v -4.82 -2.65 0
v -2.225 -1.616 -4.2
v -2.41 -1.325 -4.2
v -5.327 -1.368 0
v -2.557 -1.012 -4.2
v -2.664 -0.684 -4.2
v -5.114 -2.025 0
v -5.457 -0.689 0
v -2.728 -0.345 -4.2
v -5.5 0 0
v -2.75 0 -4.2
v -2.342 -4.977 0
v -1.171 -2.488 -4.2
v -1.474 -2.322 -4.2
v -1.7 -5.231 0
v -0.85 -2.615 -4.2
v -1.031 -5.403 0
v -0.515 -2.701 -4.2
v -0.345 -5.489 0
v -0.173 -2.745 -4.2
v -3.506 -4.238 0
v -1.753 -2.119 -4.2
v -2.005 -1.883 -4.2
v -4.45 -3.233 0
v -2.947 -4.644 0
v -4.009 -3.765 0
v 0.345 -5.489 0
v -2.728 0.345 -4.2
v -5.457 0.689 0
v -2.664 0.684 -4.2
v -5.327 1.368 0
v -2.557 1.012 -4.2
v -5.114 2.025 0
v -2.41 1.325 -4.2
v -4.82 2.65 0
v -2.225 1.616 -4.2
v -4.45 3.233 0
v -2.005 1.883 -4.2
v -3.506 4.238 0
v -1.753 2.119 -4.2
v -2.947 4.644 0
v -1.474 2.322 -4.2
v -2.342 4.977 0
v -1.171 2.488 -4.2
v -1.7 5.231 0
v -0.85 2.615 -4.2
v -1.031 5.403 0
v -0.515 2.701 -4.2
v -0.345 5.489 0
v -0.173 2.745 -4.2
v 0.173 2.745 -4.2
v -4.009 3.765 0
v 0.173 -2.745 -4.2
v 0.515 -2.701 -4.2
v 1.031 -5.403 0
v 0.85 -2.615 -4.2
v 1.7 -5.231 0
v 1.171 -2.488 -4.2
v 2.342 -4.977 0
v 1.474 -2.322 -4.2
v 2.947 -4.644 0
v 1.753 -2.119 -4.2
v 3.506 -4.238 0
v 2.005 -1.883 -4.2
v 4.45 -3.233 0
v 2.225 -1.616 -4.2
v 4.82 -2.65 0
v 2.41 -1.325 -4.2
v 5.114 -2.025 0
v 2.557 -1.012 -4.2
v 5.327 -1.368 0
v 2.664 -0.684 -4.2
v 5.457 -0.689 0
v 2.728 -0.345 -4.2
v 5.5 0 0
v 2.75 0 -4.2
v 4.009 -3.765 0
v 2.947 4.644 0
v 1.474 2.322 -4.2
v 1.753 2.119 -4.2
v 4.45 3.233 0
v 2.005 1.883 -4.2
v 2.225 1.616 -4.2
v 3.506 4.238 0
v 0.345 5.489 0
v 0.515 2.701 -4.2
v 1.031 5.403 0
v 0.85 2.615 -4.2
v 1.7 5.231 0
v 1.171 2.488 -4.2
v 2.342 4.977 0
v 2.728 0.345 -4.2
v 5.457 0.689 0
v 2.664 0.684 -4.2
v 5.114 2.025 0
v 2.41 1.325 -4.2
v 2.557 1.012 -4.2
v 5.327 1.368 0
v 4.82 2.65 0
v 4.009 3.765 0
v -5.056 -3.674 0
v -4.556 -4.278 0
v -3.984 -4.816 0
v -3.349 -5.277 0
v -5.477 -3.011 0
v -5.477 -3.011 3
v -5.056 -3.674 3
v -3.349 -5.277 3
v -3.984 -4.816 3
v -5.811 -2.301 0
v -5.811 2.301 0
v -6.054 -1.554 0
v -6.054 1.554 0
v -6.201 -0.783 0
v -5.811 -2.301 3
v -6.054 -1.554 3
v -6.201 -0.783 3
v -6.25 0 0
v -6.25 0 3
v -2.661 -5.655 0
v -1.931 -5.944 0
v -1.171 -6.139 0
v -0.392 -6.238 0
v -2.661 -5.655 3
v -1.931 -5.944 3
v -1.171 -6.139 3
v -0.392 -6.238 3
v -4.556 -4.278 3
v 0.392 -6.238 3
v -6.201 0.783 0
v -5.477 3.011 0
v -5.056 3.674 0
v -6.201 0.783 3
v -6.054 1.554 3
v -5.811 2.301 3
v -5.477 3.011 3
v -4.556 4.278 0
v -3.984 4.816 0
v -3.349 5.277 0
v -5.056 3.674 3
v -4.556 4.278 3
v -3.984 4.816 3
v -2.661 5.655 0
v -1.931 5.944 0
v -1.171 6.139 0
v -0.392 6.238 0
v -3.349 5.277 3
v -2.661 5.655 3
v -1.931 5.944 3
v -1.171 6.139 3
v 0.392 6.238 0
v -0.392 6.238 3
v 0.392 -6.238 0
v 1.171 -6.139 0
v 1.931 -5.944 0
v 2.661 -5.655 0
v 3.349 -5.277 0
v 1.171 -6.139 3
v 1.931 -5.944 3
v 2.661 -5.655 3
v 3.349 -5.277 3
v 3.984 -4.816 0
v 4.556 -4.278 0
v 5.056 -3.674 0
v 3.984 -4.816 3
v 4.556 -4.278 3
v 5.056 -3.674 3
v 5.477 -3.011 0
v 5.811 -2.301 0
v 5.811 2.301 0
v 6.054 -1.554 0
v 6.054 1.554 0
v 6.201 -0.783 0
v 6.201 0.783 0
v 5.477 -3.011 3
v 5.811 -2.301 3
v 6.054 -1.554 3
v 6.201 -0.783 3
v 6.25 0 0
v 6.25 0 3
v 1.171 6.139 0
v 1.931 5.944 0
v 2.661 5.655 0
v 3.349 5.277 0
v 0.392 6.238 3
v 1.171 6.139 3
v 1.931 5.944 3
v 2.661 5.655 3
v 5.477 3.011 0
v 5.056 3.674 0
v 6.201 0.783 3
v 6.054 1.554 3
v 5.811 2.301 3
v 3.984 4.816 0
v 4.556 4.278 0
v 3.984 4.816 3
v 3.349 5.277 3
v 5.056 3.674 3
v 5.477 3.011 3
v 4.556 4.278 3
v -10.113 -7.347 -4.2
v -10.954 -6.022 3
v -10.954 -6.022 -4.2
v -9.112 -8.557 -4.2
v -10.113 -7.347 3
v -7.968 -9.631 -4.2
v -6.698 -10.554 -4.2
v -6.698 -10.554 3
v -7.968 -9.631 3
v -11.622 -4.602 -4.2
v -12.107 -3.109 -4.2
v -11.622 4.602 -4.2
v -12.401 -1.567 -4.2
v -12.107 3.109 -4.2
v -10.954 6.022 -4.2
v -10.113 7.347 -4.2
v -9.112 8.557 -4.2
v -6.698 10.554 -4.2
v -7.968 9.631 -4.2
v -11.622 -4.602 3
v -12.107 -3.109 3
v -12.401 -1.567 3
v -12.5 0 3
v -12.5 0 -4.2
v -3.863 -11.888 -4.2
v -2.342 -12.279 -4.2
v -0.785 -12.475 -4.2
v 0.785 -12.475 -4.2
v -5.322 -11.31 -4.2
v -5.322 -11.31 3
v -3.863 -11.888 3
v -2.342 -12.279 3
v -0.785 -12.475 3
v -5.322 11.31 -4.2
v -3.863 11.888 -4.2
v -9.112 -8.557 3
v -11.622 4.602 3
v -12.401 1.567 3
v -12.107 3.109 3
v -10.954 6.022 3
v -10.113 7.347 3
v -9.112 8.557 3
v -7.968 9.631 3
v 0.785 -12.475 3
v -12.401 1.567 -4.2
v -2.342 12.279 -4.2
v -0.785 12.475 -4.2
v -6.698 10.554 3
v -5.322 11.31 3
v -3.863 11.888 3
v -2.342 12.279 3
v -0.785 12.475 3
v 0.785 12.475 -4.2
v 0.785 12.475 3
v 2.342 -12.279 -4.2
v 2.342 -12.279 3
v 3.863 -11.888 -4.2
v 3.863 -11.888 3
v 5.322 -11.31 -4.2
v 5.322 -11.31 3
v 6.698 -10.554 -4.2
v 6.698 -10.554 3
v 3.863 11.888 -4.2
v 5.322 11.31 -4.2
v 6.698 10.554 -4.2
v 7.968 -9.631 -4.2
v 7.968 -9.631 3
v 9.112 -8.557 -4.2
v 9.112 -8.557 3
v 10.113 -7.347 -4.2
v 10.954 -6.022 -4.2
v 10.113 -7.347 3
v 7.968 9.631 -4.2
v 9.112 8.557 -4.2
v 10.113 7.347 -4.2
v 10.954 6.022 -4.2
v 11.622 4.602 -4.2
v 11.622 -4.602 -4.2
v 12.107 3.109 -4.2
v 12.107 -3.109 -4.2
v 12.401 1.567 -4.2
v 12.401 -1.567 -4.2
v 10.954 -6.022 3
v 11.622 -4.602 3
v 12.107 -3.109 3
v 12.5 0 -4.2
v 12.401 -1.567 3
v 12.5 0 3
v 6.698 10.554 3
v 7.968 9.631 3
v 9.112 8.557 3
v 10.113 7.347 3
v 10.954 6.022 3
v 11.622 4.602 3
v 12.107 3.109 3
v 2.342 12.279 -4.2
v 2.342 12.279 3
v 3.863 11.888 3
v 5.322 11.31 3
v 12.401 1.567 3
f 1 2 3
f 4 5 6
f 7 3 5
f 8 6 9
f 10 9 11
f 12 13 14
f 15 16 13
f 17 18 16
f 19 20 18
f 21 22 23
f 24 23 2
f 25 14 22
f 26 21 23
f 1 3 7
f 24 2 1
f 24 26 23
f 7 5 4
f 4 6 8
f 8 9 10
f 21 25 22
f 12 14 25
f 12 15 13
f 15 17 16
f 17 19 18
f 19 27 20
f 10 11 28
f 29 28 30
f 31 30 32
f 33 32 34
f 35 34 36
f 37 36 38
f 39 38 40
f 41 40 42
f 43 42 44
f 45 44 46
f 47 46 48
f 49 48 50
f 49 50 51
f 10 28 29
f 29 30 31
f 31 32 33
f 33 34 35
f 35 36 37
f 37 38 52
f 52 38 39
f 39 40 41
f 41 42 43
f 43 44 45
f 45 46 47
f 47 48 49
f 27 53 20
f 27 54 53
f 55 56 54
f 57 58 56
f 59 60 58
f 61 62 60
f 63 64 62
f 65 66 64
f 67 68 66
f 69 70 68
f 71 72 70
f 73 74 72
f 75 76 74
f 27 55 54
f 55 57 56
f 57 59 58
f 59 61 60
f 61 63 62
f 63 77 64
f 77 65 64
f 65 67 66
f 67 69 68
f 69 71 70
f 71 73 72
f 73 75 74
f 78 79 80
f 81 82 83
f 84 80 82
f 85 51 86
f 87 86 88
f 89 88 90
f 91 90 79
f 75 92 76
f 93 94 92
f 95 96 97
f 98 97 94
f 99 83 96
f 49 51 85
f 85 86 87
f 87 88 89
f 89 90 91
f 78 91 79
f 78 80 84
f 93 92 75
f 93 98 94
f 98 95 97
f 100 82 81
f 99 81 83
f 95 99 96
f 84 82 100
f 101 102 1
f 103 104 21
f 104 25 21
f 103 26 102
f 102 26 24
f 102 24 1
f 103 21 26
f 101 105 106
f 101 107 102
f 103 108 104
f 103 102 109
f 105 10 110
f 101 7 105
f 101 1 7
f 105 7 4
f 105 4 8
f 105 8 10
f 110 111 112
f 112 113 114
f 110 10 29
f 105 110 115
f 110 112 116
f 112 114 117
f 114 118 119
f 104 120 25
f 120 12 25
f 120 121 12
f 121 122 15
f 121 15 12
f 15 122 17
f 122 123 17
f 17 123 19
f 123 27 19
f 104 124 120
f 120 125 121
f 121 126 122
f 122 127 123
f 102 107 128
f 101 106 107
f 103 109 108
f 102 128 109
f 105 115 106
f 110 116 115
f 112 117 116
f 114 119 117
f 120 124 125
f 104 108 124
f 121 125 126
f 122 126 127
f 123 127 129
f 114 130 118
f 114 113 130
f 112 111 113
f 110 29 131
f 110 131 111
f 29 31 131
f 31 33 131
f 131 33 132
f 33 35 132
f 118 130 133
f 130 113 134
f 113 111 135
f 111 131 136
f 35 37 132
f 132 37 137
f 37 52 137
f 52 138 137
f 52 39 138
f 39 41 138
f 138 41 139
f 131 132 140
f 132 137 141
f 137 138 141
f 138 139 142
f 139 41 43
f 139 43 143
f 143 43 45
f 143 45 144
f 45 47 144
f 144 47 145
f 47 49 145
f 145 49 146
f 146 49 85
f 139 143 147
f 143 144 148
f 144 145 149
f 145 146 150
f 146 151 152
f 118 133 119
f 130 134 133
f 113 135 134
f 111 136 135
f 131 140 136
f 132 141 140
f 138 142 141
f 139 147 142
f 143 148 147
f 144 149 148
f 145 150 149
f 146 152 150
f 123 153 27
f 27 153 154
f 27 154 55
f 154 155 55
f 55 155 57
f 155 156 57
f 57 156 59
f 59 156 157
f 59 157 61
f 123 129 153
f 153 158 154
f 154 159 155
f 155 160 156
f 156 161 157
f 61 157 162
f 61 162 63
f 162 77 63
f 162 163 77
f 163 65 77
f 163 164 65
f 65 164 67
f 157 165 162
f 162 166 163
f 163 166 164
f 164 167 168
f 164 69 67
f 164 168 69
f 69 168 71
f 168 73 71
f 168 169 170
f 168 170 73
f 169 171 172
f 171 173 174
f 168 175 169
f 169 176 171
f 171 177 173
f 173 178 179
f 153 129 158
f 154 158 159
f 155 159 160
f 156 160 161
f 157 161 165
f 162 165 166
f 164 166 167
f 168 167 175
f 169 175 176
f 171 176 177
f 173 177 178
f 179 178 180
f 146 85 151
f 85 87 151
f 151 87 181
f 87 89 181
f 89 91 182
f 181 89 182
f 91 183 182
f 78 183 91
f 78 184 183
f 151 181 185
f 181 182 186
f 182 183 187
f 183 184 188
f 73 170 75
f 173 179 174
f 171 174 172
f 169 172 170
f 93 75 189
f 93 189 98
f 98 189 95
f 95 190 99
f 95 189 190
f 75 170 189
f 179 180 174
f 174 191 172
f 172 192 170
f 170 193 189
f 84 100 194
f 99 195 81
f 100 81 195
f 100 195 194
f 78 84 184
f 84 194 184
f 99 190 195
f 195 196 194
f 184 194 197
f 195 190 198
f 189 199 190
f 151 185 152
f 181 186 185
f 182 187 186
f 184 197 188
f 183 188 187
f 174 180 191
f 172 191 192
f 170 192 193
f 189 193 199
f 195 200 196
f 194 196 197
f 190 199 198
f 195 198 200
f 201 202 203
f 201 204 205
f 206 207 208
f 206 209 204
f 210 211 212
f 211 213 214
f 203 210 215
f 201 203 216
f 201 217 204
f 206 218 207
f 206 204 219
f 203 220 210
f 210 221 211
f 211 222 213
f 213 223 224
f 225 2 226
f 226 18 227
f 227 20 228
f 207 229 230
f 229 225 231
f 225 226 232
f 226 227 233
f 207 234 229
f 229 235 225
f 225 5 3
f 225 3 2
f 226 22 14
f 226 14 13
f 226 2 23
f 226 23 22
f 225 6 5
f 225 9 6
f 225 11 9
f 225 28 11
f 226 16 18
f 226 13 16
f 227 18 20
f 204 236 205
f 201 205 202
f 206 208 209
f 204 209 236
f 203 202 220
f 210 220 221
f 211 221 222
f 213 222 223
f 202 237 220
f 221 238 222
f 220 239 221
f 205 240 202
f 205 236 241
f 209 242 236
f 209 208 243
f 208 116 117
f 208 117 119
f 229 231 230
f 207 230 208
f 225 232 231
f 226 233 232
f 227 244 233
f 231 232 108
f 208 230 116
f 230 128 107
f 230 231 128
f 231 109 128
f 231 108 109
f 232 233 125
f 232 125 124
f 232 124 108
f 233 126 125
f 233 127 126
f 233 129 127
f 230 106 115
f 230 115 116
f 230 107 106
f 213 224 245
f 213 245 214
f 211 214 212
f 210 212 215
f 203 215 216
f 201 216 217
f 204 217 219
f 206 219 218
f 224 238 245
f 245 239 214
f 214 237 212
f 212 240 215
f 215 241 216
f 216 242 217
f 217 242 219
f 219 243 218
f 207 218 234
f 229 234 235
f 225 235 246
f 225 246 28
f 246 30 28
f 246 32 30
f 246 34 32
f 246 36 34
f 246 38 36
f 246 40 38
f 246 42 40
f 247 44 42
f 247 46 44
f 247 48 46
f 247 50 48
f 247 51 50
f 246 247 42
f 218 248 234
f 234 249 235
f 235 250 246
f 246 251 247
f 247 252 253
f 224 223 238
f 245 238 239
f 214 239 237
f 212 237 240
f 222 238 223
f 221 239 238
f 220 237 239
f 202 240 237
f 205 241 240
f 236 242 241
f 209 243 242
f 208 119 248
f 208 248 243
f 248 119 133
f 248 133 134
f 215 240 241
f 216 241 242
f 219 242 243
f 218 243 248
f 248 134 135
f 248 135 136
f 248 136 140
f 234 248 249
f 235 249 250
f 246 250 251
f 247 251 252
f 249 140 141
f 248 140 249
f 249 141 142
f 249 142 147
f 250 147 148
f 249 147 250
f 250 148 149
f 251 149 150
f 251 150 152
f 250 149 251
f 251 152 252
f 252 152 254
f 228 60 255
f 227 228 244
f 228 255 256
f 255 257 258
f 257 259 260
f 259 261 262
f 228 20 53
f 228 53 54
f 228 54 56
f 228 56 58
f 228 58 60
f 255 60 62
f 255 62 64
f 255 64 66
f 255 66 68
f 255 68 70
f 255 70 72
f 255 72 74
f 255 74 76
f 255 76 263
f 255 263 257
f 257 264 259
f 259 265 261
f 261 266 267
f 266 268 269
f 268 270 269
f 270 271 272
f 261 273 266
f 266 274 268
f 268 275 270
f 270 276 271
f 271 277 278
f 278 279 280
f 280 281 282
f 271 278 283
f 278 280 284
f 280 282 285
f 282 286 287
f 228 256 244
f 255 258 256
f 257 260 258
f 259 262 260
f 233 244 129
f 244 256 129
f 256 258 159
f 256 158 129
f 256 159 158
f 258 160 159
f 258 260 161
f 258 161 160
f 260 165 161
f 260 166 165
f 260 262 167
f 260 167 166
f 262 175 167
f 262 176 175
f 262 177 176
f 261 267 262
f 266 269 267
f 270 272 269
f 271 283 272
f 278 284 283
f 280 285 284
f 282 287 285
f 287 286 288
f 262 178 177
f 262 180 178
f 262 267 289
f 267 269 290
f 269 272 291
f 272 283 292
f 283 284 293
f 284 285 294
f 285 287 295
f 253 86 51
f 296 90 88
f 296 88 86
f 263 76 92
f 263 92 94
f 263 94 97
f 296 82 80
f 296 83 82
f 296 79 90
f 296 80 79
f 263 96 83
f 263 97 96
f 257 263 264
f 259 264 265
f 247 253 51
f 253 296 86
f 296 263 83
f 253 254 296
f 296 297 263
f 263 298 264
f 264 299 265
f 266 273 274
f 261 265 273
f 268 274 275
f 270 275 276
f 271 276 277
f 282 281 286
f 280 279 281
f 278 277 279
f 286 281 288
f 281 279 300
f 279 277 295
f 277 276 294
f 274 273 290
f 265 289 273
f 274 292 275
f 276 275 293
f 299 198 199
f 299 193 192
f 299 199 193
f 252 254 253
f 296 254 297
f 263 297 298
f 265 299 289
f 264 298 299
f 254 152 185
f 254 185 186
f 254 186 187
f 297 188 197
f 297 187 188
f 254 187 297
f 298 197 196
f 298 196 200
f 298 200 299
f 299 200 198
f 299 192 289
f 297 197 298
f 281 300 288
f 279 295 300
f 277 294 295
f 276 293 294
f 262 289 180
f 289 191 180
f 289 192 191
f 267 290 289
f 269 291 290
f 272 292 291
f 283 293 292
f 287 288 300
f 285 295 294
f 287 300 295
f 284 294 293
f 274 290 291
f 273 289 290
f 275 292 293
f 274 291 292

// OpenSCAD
$fn = 50;

difference() {
	union() {
		translate(v = [0, 0, -4.2]) {
			cylinder(h = 7.2, r = 12.5);
		}
	}
	union() {
		translate(v = [0, 0, 0]) {
			rotate(a = [0, 0, 0]) {
				difference() {
					union() {
						translate(v = [0, 0, -7.2]) {
							cylinder(h = 7.2, r = 2.25);
						}
						translate(v = [0, 0, -4.2]) {
							cylinder(h = 4.2, r1 = 2.75, r2 = 5.5);
						}
						translate(v = [0, 0, -7.2]) {
							cylinder(h = 7.2, r = 2.75);
						}
						translate(v = [0, 0, -7.2]) {
							cylinder(h = 7.2, r = 2.25);
						}
					}
					union();
				}
			}
		}
		#cylinder(h = 3, r = 6.25);
	}
}
